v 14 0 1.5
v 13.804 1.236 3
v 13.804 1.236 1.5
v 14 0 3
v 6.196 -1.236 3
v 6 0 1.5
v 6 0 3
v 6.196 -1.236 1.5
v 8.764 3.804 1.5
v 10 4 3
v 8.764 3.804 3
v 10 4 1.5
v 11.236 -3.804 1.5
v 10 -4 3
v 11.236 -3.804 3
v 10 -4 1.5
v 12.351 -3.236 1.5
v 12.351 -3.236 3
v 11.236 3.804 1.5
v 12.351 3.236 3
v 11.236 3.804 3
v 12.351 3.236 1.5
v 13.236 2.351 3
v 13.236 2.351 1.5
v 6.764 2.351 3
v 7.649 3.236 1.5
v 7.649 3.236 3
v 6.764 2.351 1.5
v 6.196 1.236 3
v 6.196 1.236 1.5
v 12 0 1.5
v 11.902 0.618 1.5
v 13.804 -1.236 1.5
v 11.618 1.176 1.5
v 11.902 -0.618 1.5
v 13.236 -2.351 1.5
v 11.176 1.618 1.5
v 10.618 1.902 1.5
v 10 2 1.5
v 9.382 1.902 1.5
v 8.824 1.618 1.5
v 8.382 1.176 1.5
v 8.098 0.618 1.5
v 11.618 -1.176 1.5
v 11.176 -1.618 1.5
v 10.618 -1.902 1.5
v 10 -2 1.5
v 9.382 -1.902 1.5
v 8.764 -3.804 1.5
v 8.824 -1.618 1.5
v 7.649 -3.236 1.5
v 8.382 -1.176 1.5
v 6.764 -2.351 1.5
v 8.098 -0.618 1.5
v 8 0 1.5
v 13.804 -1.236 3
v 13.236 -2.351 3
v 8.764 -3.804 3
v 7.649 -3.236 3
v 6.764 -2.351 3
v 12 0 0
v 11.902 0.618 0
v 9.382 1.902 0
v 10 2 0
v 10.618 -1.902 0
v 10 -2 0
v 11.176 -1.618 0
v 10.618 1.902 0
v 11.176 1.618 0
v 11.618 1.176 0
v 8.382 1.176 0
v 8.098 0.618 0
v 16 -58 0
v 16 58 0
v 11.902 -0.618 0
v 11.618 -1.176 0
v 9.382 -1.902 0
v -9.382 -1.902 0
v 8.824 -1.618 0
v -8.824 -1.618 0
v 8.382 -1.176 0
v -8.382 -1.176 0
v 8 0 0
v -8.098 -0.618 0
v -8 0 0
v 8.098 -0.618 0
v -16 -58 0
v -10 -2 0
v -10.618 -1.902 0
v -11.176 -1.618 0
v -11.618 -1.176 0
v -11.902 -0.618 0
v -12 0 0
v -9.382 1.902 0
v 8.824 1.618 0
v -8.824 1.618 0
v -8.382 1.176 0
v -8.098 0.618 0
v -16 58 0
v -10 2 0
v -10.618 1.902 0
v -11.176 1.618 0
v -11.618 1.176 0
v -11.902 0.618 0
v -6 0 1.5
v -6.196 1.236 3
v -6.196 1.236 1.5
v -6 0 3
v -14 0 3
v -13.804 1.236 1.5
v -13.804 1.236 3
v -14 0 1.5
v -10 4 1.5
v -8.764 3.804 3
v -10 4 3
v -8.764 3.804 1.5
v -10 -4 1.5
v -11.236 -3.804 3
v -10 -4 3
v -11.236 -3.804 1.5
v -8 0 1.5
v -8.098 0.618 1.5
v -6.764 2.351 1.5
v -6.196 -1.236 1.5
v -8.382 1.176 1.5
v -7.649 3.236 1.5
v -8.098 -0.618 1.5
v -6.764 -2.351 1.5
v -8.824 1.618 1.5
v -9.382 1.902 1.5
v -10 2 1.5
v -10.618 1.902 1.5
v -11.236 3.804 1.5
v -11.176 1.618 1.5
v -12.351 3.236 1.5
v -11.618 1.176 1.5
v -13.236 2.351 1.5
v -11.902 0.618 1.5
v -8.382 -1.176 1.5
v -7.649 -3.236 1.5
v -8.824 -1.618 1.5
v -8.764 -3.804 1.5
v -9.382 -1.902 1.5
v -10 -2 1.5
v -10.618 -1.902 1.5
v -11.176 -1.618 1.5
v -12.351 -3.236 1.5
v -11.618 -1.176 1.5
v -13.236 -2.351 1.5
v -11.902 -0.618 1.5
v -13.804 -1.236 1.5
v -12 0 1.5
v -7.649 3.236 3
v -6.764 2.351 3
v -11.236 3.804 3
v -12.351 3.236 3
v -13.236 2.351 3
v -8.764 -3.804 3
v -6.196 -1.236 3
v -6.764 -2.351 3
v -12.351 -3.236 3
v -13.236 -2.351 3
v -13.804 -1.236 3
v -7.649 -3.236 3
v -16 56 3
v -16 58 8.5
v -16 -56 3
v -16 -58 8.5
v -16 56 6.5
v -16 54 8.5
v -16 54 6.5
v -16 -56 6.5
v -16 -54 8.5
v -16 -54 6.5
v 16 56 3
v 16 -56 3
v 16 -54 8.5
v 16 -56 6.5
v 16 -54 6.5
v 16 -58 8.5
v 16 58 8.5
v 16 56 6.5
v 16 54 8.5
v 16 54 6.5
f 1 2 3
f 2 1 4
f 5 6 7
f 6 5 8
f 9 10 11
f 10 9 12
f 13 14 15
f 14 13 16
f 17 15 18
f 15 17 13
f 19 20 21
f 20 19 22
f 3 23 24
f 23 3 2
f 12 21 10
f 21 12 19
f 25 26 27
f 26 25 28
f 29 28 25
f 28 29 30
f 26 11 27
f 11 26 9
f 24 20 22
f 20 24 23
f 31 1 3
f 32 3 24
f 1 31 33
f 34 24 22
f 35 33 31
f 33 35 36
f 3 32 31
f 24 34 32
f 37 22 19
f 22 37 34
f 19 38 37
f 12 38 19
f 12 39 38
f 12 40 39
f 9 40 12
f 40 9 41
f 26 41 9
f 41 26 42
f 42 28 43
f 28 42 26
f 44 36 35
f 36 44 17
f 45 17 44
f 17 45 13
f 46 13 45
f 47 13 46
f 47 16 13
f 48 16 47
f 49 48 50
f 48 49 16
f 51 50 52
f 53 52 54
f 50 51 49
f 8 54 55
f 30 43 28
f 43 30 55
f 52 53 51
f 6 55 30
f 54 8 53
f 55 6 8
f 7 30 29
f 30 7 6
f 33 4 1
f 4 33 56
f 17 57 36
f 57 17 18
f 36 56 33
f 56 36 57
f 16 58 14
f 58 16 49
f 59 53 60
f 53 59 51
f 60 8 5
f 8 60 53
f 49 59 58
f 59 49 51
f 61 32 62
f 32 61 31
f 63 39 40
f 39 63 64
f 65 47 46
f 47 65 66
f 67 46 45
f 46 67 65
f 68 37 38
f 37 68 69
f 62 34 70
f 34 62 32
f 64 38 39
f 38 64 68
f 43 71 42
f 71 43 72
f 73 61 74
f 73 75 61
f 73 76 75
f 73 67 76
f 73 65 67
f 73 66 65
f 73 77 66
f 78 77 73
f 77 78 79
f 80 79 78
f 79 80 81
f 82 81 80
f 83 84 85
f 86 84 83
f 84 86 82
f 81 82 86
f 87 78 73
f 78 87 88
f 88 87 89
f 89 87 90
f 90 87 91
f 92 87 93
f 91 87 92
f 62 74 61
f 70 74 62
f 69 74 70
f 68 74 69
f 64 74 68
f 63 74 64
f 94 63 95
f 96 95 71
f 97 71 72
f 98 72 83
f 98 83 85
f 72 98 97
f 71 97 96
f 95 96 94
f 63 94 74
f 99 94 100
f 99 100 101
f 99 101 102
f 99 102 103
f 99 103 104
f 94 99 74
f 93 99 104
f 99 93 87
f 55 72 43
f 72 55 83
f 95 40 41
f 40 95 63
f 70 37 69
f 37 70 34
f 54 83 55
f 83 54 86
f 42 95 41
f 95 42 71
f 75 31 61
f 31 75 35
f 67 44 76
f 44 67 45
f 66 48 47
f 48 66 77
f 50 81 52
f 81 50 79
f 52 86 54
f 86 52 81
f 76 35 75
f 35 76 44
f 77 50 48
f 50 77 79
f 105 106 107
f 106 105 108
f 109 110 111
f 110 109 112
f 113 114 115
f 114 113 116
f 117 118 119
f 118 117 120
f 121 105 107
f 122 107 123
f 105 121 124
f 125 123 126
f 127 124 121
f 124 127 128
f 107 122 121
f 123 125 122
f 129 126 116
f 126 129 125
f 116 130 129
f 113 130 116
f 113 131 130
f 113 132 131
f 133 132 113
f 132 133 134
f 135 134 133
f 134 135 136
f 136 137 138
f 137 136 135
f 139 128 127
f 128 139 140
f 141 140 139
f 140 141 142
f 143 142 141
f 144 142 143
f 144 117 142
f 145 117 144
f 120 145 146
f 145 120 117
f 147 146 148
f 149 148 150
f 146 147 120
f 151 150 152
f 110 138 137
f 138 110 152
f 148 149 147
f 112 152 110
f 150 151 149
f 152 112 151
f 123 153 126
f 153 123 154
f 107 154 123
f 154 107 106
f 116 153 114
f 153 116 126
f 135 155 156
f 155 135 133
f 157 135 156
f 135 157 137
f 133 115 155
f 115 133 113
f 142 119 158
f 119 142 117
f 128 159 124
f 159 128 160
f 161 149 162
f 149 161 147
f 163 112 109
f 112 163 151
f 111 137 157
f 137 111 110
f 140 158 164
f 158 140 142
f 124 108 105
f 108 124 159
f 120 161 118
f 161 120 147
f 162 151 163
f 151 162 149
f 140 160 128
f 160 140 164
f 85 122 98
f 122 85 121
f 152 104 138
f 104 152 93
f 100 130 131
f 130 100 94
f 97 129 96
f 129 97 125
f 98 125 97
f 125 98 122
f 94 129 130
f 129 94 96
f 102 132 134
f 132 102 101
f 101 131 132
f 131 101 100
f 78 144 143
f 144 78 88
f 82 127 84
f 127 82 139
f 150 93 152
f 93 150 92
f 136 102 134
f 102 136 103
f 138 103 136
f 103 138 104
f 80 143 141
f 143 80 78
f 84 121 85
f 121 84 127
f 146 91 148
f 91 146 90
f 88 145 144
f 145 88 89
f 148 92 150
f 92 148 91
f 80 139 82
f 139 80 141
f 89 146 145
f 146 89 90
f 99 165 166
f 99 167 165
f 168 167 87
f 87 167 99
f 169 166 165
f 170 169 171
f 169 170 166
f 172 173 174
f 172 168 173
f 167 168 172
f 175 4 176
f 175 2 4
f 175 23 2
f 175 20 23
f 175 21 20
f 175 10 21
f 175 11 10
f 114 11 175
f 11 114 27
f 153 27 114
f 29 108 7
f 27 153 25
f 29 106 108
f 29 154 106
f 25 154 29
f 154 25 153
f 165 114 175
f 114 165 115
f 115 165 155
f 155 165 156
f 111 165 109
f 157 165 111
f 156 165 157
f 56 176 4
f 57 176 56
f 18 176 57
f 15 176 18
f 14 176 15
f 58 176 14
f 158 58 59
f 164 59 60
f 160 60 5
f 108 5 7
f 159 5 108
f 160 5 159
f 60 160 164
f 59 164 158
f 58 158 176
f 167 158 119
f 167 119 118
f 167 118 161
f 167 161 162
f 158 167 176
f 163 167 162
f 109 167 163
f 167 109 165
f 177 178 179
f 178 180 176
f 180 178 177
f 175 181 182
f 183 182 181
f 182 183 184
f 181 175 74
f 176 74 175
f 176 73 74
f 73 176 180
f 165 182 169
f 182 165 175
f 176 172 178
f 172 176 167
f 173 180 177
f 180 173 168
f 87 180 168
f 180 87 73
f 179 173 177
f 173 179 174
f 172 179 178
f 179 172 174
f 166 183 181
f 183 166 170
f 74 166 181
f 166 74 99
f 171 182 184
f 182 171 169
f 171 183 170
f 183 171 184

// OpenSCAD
$fn = 20;

Width = 32;

// Methods
module Holes (x, y) {    
    translate ([x, y, 1.5])
    cylinder (r = 4, h = 2.5);
    
    translate ([x, y, 0])
	cylinder (r = 2, h = 5 + 1);
}

//Post (0, 0, 50);

difference() {
    translate([0, 0, 1.5]) 
    cube ([Width, 112, 3], center = true);

    Holes ( 10, 0);
    Holes (-10, 0);
}

translate([-(Width / 2), -58, 0]) 
cube ([Width, 2, 8.5]);

translate([-(Width / 2), -58, 6.5]) 
cube ([Width, 4, 2]);

translate([-(Width / 2), 56, 0]) 
cube ([Width, 2, 8.5]);

translate([-(Width / 2), 54, 6.5]) 
cube ([Width, 3, 2]);
